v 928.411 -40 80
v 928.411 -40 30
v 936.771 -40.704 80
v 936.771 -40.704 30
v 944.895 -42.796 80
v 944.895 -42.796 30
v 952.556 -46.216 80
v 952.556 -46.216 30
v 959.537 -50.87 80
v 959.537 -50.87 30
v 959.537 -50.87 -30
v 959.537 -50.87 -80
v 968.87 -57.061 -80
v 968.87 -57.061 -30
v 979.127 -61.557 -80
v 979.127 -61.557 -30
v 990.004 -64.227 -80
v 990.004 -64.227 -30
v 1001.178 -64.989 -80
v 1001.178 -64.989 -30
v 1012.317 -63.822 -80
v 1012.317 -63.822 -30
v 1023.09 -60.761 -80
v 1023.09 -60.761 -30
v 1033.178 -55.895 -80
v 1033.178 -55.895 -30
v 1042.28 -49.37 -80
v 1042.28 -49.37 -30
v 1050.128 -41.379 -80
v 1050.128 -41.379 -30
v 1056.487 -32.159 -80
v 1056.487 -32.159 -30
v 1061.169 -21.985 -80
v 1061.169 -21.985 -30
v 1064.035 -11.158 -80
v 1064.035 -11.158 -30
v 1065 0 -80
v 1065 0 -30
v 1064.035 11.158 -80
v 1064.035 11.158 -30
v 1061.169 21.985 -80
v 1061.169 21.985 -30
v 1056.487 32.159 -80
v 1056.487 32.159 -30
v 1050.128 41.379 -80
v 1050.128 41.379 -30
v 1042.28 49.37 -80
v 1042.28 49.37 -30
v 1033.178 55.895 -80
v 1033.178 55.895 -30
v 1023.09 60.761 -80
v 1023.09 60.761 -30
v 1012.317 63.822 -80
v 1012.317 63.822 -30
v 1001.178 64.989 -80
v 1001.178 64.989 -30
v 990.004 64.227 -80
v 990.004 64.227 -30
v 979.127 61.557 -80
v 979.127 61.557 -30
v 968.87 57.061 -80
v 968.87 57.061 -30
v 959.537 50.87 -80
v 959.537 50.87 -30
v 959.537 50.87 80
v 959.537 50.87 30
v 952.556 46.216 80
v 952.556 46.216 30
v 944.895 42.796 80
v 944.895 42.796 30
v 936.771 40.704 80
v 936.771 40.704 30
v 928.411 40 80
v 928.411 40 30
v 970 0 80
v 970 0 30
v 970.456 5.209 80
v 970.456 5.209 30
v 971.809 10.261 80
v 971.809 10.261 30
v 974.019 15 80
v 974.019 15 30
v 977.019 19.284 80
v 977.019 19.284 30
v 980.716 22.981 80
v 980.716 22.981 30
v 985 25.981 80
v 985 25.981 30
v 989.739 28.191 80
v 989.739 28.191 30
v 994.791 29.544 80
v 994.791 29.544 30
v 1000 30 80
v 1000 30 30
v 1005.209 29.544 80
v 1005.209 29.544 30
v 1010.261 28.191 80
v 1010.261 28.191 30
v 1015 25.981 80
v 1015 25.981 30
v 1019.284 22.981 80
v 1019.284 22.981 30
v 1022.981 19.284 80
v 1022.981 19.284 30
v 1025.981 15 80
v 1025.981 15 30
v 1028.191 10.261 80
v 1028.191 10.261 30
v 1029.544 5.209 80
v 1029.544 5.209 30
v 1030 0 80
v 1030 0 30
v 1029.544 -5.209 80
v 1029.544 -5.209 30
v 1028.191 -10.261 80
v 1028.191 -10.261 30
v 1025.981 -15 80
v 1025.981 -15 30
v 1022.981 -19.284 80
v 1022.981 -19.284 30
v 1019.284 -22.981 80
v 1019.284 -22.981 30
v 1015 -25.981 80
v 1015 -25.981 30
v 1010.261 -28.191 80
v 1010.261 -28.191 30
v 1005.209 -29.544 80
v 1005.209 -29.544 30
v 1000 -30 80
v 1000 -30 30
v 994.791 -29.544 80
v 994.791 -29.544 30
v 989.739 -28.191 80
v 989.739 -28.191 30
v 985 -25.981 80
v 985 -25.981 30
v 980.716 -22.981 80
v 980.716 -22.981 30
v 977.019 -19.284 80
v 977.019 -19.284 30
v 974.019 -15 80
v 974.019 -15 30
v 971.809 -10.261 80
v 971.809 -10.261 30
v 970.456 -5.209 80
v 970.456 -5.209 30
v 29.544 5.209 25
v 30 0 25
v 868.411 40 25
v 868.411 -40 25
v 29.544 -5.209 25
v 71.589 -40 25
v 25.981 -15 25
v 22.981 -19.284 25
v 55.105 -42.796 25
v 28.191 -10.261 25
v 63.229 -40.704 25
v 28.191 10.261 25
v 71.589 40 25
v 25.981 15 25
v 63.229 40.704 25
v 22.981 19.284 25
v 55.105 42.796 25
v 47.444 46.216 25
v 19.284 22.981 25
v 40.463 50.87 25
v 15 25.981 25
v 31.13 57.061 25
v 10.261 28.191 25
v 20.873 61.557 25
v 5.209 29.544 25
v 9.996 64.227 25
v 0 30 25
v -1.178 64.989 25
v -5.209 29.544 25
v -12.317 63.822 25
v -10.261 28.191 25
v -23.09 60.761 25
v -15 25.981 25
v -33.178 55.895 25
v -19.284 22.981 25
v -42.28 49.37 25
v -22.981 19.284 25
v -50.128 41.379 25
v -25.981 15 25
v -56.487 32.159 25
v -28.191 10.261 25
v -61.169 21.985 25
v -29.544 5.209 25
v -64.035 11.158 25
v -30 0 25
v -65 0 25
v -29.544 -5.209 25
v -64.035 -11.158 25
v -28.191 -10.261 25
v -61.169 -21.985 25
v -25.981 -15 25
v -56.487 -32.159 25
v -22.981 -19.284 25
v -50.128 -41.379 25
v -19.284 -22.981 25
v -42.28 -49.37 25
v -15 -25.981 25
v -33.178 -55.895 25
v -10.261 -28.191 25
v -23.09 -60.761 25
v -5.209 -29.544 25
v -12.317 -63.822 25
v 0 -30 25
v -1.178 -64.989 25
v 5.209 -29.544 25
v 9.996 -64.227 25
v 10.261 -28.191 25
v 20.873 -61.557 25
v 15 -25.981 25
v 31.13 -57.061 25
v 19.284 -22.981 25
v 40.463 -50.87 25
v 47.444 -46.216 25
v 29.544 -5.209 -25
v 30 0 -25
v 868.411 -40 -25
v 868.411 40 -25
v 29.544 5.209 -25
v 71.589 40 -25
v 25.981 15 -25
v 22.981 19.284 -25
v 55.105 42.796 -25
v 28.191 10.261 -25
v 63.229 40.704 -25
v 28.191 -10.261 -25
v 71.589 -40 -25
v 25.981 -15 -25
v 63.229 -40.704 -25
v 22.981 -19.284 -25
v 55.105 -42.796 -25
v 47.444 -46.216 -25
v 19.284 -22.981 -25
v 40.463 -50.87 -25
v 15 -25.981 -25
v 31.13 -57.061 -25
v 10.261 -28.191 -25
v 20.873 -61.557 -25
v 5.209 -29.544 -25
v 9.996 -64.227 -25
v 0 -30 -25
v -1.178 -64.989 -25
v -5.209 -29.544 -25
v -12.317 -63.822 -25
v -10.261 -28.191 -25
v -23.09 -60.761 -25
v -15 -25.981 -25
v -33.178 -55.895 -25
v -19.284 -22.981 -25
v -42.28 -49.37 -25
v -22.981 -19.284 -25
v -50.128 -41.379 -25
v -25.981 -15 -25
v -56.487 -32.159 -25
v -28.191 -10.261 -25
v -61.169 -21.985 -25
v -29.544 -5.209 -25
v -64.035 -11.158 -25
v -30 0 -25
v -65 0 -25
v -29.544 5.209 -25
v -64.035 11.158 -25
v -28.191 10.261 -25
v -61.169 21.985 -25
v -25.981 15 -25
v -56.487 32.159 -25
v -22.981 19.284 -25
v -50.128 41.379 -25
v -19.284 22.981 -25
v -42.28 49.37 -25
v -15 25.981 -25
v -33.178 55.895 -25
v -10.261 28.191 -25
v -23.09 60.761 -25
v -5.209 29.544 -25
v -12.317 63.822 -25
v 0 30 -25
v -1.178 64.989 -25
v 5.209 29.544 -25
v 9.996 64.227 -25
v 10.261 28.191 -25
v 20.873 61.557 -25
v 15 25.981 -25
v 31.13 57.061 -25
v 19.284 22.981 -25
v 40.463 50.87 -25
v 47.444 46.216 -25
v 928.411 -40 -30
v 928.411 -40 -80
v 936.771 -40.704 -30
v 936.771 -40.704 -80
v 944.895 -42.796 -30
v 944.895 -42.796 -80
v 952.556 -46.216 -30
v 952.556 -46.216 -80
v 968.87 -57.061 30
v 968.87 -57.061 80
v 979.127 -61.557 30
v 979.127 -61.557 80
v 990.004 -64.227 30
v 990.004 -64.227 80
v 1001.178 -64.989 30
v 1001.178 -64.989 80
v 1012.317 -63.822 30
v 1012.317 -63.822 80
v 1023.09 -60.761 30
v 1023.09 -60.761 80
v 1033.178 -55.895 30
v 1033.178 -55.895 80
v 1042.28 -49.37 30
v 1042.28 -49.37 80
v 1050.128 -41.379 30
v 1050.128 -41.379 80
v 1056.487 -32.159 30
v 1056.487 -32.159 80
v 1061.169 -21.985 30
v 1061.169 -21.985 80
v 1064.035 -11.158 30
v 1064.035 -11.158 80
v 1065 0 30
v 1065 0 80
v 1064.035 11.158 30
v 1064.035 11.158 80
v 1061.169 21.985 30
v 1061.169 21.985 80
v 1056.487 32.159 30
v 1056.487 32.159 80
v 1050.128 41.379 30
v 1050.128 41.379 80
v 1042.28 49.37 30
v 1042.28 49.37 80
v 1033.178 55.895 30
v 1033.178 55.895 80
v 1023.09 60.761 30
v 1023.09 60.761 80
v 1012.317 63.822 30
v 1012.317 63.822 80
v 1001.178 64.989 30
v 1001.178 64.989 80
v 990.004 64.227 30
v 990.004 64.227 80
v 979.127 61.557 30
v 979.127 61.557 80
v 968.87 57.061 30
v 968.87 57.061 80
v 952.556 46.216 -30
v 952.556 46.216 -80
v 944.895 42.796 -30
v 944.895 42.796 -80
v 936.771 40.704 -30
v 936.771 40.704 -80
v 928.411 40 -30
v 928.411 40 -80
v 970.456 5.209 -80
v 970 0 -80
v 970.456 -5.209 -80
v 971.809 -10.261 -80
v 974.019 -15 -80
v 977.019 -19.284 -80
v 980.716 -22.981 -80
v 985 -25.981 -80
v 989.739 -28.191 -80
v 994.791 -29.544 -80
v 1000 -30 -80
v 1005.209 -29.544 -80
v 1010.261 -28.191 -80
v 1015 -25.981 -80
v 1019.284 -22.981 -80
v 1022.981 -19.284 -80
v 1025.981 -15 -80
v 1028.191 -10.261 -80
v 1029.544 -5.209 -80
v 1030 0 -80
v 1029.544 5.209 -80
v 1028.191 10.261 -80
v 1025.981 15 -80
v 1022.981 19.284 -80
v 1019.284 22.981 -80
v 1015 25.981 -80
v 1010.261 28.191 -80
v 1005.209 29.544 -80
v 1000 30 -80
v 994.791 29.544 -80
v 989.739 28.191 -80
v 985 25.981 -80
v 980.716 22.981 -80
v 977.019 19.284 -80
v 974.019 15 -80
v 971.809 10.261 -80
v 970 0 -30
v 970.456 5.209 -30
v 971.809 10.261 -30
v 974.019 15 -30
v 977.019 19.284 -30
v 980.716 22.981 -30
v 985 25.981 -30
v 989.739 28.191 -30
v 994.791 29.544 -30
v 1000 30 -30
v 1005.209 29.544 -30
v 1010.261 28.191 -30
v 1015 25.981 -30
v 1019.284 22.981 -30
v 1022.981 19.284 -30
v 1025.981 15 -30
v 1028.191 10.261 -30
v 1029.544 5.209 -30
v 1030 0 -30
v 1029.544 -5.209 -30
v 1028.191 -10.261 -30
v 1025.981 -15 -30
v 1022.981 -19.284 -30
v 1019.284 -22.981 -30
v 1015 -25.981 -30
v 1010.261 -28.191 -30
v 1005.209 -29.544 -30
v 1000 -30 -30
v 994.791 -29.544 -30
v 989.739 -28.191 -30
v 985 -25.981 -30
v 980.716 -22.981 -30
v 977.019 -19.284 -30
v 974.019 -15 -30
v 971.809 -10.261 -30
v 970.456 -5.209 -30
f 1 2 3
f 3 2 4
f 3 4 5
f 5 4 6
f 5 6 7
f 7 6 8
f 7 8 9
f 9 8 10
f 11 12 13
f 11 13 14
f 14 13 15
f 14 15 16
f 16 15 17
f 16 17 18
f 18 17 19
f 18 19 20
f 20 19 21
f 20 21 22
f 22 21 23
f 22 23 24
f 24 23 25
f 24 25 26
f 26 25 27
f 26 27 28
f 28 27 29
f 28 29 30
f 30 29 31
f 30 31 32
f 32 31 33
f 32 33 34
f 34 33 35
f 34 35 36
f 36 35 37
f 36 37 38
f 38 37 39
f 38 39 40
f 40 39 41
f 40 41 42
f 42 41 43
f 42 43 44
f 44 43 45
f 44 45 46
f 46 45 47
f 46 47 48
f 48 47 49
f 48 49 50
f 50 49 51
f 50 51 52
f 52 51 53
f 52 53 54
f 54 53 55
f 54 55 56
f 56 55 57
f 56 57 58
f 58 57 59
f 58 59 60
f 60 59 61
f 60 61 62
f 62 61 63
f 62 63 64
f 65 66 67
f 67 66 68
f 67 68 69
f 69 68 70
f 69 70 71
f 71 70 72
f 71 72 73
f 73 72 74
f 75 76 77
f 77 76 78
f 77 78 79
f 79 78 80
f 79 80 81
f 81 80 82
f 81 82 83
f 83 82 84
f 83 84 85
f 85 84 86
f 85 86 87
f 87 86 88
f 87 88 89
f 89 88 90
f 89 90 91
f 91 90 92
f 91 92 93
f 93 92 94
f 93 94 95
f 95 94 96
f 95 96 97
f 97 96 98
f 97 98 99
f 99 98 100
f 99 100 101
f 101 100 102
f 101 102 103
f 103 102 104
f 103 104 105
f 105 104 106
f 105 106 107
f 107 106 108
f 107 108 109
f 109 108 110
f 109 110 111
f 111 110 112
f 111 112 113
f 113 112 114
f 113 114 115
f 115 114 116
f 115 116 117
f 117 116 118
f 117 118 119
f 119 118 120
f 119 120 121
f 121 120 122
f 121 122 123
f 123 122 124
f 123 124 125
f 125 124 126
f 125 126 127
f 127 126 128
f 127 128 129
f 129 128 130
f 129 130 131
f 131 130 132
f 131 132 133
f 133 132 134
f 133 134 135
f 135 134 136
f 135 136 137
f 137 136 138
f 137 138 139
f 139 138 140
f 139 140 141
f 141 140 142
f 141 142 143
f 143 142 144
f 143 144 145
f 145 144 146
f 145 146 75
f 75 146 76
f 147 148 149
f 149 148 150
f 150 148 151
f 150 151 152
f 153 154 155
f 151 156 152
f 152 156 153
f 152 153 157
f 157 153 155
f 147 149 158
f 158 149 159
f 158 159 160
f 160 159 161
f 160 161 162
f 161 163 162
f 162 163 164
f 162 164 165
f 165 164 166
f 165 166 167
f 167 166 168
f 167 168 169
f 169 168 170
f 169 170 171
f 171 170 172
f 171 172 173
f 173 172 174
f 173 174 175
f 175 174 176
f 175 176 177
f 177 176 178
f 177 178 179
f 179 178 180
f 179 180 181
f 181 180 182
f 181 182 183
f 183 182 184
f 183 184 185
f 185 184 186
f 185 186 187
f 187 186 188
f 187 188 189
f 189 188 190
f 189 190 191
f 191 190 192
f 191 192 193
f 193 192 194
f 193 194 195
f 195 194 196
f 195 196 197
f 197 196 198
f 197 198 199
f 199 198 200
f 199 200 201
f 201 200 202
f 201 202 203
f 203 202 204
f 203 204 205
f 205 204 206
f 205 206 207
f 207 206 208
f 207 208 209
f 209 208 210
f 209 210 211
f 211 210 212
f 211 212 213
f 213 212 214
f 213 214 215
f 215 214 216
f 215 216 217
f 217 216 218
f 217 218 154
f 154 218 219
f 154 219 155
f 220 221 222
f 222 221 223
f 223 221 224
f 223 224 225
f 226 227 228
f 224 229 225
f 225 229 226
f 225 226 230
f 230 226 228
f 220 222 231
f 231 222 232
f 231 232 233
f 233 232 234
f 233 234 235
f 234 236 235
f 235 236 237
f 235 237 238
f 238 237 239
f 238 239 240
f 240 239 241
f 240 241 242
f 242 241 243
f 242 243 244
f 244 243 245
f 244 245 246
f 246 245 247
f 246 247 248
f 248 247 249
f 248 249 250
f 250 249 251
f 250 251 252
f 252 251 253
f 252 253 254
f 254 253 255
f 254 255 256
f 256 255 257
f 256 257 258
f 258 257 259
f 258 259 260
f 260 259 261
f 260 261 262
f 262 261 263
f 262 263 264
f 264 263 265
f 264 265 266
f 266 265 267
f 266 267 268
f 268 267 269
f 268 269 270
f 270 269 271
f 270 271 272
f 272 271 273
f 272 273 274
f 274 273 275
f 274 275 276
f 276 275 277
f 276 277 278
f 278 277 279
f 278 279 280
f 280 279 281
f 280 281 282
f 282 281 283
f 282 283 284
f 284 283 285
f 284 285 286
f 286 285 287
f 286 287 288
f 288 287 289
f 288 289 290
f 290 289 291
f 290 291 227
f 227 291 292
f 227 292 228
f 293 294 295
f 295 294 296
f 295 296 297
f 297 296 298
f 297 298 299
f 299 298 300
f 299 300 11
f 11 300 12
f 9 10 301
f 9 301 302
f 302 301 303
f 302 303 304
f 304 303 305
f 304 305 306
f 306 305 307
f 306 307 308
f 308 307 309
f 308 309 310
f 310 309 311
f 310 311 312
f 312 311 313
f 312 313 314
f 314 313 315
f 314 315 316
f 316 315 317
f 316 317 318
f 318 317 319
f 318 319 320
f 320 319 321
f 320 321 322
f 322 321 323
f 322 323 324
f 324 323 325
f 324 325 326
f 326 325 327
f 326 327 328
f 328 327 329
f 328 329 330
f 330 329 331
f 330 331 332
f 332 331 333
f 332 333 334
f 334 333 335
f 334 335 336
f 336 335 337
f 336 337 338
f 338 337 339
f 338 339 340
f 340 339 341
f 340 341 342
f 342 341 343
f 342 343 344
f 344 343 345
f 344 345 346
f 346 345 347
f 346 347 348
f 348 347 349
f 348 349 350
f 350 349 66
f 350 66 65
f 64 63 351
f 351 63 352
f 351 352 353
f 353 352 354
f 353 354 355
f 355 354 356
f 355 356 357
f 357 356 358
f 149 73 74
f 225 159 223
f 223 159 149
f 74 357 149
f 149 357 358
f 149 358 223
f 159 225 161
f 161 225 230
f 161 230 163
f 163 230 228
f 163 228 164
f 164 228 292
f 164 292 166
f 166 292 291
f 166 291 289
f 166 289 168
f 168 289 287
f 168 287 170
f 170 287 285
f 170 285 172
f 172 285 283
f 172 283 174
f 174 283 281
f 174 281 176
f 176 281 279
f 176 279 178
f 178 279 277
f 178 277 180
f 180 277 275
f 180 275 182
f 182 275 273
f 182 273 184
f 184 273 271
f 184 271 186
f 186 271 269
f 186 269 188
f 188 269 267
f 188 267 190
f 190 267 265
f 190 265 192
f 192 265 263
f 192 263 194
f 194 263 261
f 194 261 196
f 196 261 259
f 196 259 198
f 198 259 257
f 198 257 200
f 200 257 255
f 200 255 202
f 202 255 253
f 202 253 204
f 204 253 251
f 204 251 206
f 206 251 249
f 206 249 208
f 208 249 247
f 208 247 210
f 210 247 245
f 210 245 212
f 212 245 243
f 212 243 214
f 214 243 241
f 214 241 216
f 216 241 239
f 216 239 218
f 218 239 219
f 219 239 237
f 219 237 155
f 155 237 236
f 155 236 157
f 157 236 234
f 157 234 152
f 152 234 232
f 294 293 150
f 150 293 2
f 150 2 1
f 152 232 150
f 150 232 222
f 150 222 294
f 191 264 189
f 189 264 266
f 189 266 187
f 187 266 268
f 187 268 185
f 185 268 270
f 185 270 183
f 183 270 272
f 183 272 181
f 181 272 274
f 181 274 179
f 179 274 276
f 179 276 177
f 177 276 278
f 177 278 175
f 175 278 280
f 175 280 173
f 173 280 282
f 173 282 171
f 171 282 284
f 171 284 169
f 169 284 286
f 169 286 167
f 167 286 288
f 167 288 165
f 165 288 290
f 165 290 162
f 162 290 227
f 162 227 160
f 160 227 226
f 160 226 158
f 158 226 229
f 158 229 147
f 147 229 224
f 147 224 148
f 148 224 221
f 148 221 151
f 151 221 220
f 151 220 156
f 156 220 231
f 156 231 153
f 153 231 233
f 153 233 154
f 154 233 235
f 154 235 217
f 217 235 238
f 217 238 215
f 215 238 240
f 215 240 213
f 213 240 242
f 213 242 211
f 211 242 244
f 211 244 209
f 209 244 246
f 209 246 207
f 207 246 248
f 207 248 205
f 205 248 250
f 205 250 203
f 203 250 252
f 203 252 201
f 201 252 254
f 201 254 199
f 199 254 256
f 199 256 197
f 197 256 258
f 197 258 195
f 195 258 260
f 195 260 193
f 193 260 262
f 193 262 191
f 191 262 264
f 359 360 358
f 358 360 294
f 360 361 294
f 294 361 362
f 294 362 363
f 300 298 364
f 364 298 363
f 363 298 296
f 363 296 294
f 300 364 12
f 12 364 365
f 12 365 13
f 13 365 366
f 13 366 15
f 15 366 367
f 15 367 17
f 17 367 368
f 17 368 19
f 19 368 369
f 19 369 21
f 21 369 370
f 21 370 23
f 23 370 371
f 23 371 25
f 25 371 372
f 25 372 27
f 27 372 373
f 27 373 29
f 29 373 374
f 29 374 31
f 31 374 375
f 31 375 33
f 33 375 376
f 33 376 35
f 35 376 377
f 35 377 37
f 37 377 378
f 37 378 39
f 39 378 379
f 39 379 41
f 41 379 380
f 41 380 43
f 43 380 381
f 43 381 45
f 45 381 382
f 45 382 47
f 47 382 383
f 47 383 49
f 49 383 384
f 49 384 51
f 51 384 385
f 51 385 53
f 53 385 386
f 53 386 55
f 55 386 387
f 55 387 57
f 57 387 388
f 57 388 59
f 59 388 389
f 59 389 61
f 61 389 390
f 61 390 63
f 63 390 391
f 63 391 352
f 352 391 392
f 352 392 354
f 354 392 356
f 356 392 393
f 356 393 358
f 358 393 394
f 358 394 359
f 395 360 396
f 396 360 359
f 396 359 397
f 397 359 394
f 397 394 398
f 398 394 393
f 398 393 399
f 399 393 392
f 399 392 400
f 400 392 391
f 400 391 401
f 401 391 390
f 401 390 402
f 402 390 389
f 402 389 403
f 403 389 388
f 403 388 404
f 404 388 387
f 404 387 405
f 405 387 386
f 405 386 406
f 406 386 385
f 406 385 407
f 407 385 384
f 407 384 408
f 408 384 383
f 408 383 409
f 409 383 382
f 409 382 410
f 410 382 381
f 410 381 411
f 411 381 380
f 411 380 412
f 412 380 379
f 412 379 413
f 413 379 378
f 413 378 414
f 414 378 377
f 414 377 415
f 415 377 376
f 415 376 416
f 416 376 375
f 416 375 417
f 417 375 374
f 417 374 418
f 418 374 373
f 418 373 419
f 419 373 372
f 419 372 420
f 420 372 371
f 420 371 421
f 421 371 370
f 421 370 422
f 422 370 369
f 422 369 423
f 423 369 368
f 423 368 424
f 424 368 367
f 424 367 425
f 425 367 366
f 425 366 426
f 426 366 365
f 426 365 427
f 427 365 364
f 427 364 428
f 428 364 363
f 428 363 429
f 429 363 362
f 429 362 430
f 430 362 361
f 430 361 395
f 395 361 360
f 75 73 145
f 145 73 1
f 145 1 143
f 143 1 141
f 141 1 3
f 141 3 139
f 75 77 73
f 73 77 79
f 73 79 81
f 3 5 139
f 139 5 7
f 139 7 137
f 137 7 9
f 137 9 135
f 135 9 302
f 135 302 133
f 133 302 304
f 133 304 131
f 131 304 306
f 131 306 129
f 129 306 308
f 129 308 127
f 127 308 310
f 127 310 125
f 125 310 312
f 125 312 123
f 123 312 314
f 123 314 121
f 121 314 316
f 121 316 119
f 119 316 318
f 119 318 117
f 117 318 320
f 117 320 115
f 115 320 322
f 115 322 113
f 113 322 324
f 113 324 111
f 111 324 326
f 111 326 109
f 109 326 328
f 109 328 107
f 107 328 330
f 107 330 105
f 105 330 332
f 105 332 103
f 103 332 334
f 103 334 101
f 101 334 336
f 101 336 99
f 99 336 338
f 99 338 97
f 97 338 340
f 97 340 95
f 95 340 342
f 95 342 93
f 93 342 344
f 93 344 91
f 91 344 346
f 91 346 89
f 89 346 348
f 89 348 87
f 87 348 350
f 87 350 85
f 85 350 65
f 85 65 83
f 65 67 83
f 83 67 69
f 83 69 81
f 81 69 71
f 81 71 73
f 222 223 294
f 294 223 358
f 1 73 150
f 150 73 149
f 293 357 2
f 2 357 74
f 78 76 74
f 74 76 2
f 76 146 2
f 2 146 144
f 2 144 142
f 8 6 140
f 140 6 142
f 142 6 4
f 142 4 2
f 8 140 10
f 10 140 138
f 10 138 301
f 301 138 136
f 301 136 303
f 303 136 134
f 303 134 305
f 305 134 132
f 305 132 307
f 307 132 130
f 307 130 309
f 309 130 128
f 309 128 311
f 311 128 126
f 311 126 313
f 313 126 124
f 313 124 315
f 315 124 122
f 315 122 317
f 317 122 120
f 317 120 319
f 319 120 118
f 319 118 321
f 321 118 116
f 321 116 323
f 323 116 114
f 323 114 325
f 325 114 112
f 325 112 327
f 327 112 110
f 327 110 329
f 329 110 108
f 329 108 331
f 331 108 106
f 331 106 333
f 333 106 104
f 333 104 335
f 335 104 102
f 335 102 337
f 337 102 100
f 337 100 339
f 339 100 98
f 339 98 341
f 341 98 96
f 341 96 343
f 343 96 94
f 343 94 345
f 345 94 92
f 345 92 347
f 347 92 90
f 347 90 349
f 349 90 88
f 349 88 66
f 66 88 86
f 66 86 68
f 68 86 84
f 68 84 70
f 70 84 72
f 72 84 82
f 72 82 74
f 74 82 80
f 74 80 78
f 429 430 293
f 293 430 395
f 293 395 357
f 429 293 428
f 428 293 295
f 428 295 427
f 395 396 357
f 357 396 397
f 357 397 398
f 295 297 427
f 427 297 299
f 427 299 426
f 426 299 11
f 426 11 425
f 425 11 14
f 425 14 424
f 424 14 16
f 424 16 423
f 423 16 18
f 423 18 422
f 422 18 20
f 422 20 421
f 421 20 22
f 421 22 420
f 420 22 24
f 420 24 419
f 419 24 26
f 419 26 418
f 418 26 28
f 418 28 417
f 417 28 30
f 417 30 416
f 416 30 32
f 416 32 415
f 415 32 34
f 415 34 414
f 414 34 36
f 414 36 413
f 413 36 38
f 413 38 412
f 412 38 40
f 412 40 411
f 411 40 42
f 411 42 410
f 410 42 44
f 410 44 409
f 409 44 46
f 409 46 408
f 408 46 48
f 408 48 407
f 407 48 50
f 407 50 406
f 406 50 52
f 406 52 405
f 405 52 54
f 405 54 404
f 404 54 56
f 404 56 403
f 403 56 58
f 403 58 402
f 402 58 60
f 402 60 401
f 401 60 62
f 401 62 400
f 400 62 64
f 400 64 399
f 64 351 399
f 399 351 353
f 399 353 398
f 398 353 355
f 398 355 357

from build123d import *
from build123d.topology import SkipClean

# Parameters (mm, degrees)
SKETCH1_R               = 30
BOSS_EXTRUDE1_DEPTH     = 25
SKETCH3_R               = 30
BOSS_EXTRUDE2_DEPTH     = 80
CUT_EXTRUDE1_DEPTH      = 1074.14957019
CUT_EXTRUDE1_DEPTH_BACK = 1074.14957019
SKETCH4_W               = 136.589105316
SKETCH4_H               = 60


with BuildPart() as part:
    # Sketch1 → Boss-Extrude1 (new, symmetric)
    with BuildSketch(Plane.XY):
        with BuildLine():
            Line((71.589105316, 40), (928.410894684, 40))
            ThreePointArc((928.410894684, 40), (944.895406519, 42.795541847), (959.536592647, 50.869565217))
            ThreePointArc((959.536592647, 50.869565217), (1065, 0), (959.536592647, -50.869565217))
            ThreePointArc((959.536592647, -50.869565217), (944.895406519, -42.795541847), (928.410894684, -40))
            Line((928.410894684, -40), (71.589105316, -40))
            ThreePointArc((71.589105316, -40), (55.104593481, -42.795541847), (40.463407353, -50.869565217))
            ThreePointArc((40.463407353, -50.869565217), (-65, 0), (40.463407353, 50.869565217))
            ThreePointArc((40.463407353, 50.869565217), (55.104593481, 42.795541847), (71.589105316, 40))
        make_face()
        Circle(SKETCH1_R, mode=Mode.SUBTRACT)
        with Locations((1000, 0)):
            Circle(SKETCH1_R, mode=Mode.SUBTRACT)
    extrude(amount=BOSS_EXTRUDE1_DEPTH, both=True)

    # Sketch3 → Boss-Extrude2 (add, symmetric)
    with SkipClean():  # the faces are left unmerged after this step: merging them gives an invalid solid
        with BuildSketch(Plane.XY):
            with BuildLine():
                Line((868.410894684, -40), (928.410894684, -40))
                ThreePointArc((928.410894684, -40), (944.895406519, -42.795541847), (959.536592647, -50.869565217))
                ThreePointArc((959.536592647, -50.869565217), (1065, 0), (959.536592647, 50.869565217))
                ThreePointArc((959.536592647, 50.869565217), (944.895406519, 42.795541847), (928.410894684, 40))
                Line((928.410894684, 40), (868.410894684, 40))
                Line((868.410894684, 40), (868.410894684, -40))
            make_face()
            with Locations((1000, 0)):
                Circle(SKETCH3_R, mode=Mode.SUBTRACT)
        extrude(amount=BOSS_EXTRUDE2_DEPTH, both=True)

    # Sketch4 → Cut-Extrude1 (cut, two sides: drawn at the far end of the back side and taken through both)
    with BuildSketch(Plane(origin=(0, 40, 0), x_dir=(1, 0, 0), z_dir=(0, 1, 0)).offset(-CUT_EXTRUDE1_DEPTH_BACK)):
        Polygon((868.410894684, 25), (928.410894684, 80), (868.410894684, 80), align=None)
        with Locations((996.705447342, 0)):
            Rectangle(SKETCH4_W, SKETCH4_H)
        Polygon((928.410894684, -80), (868.410894684, -80), (868.410894684, -25), align=None)
    extrude(amount=CUT_EXTRUDE1_DEPTH + CUT_EXTRUDE1_DEPTH_BACK, mode=Mode.SUBTRACT)


solid = part.part
